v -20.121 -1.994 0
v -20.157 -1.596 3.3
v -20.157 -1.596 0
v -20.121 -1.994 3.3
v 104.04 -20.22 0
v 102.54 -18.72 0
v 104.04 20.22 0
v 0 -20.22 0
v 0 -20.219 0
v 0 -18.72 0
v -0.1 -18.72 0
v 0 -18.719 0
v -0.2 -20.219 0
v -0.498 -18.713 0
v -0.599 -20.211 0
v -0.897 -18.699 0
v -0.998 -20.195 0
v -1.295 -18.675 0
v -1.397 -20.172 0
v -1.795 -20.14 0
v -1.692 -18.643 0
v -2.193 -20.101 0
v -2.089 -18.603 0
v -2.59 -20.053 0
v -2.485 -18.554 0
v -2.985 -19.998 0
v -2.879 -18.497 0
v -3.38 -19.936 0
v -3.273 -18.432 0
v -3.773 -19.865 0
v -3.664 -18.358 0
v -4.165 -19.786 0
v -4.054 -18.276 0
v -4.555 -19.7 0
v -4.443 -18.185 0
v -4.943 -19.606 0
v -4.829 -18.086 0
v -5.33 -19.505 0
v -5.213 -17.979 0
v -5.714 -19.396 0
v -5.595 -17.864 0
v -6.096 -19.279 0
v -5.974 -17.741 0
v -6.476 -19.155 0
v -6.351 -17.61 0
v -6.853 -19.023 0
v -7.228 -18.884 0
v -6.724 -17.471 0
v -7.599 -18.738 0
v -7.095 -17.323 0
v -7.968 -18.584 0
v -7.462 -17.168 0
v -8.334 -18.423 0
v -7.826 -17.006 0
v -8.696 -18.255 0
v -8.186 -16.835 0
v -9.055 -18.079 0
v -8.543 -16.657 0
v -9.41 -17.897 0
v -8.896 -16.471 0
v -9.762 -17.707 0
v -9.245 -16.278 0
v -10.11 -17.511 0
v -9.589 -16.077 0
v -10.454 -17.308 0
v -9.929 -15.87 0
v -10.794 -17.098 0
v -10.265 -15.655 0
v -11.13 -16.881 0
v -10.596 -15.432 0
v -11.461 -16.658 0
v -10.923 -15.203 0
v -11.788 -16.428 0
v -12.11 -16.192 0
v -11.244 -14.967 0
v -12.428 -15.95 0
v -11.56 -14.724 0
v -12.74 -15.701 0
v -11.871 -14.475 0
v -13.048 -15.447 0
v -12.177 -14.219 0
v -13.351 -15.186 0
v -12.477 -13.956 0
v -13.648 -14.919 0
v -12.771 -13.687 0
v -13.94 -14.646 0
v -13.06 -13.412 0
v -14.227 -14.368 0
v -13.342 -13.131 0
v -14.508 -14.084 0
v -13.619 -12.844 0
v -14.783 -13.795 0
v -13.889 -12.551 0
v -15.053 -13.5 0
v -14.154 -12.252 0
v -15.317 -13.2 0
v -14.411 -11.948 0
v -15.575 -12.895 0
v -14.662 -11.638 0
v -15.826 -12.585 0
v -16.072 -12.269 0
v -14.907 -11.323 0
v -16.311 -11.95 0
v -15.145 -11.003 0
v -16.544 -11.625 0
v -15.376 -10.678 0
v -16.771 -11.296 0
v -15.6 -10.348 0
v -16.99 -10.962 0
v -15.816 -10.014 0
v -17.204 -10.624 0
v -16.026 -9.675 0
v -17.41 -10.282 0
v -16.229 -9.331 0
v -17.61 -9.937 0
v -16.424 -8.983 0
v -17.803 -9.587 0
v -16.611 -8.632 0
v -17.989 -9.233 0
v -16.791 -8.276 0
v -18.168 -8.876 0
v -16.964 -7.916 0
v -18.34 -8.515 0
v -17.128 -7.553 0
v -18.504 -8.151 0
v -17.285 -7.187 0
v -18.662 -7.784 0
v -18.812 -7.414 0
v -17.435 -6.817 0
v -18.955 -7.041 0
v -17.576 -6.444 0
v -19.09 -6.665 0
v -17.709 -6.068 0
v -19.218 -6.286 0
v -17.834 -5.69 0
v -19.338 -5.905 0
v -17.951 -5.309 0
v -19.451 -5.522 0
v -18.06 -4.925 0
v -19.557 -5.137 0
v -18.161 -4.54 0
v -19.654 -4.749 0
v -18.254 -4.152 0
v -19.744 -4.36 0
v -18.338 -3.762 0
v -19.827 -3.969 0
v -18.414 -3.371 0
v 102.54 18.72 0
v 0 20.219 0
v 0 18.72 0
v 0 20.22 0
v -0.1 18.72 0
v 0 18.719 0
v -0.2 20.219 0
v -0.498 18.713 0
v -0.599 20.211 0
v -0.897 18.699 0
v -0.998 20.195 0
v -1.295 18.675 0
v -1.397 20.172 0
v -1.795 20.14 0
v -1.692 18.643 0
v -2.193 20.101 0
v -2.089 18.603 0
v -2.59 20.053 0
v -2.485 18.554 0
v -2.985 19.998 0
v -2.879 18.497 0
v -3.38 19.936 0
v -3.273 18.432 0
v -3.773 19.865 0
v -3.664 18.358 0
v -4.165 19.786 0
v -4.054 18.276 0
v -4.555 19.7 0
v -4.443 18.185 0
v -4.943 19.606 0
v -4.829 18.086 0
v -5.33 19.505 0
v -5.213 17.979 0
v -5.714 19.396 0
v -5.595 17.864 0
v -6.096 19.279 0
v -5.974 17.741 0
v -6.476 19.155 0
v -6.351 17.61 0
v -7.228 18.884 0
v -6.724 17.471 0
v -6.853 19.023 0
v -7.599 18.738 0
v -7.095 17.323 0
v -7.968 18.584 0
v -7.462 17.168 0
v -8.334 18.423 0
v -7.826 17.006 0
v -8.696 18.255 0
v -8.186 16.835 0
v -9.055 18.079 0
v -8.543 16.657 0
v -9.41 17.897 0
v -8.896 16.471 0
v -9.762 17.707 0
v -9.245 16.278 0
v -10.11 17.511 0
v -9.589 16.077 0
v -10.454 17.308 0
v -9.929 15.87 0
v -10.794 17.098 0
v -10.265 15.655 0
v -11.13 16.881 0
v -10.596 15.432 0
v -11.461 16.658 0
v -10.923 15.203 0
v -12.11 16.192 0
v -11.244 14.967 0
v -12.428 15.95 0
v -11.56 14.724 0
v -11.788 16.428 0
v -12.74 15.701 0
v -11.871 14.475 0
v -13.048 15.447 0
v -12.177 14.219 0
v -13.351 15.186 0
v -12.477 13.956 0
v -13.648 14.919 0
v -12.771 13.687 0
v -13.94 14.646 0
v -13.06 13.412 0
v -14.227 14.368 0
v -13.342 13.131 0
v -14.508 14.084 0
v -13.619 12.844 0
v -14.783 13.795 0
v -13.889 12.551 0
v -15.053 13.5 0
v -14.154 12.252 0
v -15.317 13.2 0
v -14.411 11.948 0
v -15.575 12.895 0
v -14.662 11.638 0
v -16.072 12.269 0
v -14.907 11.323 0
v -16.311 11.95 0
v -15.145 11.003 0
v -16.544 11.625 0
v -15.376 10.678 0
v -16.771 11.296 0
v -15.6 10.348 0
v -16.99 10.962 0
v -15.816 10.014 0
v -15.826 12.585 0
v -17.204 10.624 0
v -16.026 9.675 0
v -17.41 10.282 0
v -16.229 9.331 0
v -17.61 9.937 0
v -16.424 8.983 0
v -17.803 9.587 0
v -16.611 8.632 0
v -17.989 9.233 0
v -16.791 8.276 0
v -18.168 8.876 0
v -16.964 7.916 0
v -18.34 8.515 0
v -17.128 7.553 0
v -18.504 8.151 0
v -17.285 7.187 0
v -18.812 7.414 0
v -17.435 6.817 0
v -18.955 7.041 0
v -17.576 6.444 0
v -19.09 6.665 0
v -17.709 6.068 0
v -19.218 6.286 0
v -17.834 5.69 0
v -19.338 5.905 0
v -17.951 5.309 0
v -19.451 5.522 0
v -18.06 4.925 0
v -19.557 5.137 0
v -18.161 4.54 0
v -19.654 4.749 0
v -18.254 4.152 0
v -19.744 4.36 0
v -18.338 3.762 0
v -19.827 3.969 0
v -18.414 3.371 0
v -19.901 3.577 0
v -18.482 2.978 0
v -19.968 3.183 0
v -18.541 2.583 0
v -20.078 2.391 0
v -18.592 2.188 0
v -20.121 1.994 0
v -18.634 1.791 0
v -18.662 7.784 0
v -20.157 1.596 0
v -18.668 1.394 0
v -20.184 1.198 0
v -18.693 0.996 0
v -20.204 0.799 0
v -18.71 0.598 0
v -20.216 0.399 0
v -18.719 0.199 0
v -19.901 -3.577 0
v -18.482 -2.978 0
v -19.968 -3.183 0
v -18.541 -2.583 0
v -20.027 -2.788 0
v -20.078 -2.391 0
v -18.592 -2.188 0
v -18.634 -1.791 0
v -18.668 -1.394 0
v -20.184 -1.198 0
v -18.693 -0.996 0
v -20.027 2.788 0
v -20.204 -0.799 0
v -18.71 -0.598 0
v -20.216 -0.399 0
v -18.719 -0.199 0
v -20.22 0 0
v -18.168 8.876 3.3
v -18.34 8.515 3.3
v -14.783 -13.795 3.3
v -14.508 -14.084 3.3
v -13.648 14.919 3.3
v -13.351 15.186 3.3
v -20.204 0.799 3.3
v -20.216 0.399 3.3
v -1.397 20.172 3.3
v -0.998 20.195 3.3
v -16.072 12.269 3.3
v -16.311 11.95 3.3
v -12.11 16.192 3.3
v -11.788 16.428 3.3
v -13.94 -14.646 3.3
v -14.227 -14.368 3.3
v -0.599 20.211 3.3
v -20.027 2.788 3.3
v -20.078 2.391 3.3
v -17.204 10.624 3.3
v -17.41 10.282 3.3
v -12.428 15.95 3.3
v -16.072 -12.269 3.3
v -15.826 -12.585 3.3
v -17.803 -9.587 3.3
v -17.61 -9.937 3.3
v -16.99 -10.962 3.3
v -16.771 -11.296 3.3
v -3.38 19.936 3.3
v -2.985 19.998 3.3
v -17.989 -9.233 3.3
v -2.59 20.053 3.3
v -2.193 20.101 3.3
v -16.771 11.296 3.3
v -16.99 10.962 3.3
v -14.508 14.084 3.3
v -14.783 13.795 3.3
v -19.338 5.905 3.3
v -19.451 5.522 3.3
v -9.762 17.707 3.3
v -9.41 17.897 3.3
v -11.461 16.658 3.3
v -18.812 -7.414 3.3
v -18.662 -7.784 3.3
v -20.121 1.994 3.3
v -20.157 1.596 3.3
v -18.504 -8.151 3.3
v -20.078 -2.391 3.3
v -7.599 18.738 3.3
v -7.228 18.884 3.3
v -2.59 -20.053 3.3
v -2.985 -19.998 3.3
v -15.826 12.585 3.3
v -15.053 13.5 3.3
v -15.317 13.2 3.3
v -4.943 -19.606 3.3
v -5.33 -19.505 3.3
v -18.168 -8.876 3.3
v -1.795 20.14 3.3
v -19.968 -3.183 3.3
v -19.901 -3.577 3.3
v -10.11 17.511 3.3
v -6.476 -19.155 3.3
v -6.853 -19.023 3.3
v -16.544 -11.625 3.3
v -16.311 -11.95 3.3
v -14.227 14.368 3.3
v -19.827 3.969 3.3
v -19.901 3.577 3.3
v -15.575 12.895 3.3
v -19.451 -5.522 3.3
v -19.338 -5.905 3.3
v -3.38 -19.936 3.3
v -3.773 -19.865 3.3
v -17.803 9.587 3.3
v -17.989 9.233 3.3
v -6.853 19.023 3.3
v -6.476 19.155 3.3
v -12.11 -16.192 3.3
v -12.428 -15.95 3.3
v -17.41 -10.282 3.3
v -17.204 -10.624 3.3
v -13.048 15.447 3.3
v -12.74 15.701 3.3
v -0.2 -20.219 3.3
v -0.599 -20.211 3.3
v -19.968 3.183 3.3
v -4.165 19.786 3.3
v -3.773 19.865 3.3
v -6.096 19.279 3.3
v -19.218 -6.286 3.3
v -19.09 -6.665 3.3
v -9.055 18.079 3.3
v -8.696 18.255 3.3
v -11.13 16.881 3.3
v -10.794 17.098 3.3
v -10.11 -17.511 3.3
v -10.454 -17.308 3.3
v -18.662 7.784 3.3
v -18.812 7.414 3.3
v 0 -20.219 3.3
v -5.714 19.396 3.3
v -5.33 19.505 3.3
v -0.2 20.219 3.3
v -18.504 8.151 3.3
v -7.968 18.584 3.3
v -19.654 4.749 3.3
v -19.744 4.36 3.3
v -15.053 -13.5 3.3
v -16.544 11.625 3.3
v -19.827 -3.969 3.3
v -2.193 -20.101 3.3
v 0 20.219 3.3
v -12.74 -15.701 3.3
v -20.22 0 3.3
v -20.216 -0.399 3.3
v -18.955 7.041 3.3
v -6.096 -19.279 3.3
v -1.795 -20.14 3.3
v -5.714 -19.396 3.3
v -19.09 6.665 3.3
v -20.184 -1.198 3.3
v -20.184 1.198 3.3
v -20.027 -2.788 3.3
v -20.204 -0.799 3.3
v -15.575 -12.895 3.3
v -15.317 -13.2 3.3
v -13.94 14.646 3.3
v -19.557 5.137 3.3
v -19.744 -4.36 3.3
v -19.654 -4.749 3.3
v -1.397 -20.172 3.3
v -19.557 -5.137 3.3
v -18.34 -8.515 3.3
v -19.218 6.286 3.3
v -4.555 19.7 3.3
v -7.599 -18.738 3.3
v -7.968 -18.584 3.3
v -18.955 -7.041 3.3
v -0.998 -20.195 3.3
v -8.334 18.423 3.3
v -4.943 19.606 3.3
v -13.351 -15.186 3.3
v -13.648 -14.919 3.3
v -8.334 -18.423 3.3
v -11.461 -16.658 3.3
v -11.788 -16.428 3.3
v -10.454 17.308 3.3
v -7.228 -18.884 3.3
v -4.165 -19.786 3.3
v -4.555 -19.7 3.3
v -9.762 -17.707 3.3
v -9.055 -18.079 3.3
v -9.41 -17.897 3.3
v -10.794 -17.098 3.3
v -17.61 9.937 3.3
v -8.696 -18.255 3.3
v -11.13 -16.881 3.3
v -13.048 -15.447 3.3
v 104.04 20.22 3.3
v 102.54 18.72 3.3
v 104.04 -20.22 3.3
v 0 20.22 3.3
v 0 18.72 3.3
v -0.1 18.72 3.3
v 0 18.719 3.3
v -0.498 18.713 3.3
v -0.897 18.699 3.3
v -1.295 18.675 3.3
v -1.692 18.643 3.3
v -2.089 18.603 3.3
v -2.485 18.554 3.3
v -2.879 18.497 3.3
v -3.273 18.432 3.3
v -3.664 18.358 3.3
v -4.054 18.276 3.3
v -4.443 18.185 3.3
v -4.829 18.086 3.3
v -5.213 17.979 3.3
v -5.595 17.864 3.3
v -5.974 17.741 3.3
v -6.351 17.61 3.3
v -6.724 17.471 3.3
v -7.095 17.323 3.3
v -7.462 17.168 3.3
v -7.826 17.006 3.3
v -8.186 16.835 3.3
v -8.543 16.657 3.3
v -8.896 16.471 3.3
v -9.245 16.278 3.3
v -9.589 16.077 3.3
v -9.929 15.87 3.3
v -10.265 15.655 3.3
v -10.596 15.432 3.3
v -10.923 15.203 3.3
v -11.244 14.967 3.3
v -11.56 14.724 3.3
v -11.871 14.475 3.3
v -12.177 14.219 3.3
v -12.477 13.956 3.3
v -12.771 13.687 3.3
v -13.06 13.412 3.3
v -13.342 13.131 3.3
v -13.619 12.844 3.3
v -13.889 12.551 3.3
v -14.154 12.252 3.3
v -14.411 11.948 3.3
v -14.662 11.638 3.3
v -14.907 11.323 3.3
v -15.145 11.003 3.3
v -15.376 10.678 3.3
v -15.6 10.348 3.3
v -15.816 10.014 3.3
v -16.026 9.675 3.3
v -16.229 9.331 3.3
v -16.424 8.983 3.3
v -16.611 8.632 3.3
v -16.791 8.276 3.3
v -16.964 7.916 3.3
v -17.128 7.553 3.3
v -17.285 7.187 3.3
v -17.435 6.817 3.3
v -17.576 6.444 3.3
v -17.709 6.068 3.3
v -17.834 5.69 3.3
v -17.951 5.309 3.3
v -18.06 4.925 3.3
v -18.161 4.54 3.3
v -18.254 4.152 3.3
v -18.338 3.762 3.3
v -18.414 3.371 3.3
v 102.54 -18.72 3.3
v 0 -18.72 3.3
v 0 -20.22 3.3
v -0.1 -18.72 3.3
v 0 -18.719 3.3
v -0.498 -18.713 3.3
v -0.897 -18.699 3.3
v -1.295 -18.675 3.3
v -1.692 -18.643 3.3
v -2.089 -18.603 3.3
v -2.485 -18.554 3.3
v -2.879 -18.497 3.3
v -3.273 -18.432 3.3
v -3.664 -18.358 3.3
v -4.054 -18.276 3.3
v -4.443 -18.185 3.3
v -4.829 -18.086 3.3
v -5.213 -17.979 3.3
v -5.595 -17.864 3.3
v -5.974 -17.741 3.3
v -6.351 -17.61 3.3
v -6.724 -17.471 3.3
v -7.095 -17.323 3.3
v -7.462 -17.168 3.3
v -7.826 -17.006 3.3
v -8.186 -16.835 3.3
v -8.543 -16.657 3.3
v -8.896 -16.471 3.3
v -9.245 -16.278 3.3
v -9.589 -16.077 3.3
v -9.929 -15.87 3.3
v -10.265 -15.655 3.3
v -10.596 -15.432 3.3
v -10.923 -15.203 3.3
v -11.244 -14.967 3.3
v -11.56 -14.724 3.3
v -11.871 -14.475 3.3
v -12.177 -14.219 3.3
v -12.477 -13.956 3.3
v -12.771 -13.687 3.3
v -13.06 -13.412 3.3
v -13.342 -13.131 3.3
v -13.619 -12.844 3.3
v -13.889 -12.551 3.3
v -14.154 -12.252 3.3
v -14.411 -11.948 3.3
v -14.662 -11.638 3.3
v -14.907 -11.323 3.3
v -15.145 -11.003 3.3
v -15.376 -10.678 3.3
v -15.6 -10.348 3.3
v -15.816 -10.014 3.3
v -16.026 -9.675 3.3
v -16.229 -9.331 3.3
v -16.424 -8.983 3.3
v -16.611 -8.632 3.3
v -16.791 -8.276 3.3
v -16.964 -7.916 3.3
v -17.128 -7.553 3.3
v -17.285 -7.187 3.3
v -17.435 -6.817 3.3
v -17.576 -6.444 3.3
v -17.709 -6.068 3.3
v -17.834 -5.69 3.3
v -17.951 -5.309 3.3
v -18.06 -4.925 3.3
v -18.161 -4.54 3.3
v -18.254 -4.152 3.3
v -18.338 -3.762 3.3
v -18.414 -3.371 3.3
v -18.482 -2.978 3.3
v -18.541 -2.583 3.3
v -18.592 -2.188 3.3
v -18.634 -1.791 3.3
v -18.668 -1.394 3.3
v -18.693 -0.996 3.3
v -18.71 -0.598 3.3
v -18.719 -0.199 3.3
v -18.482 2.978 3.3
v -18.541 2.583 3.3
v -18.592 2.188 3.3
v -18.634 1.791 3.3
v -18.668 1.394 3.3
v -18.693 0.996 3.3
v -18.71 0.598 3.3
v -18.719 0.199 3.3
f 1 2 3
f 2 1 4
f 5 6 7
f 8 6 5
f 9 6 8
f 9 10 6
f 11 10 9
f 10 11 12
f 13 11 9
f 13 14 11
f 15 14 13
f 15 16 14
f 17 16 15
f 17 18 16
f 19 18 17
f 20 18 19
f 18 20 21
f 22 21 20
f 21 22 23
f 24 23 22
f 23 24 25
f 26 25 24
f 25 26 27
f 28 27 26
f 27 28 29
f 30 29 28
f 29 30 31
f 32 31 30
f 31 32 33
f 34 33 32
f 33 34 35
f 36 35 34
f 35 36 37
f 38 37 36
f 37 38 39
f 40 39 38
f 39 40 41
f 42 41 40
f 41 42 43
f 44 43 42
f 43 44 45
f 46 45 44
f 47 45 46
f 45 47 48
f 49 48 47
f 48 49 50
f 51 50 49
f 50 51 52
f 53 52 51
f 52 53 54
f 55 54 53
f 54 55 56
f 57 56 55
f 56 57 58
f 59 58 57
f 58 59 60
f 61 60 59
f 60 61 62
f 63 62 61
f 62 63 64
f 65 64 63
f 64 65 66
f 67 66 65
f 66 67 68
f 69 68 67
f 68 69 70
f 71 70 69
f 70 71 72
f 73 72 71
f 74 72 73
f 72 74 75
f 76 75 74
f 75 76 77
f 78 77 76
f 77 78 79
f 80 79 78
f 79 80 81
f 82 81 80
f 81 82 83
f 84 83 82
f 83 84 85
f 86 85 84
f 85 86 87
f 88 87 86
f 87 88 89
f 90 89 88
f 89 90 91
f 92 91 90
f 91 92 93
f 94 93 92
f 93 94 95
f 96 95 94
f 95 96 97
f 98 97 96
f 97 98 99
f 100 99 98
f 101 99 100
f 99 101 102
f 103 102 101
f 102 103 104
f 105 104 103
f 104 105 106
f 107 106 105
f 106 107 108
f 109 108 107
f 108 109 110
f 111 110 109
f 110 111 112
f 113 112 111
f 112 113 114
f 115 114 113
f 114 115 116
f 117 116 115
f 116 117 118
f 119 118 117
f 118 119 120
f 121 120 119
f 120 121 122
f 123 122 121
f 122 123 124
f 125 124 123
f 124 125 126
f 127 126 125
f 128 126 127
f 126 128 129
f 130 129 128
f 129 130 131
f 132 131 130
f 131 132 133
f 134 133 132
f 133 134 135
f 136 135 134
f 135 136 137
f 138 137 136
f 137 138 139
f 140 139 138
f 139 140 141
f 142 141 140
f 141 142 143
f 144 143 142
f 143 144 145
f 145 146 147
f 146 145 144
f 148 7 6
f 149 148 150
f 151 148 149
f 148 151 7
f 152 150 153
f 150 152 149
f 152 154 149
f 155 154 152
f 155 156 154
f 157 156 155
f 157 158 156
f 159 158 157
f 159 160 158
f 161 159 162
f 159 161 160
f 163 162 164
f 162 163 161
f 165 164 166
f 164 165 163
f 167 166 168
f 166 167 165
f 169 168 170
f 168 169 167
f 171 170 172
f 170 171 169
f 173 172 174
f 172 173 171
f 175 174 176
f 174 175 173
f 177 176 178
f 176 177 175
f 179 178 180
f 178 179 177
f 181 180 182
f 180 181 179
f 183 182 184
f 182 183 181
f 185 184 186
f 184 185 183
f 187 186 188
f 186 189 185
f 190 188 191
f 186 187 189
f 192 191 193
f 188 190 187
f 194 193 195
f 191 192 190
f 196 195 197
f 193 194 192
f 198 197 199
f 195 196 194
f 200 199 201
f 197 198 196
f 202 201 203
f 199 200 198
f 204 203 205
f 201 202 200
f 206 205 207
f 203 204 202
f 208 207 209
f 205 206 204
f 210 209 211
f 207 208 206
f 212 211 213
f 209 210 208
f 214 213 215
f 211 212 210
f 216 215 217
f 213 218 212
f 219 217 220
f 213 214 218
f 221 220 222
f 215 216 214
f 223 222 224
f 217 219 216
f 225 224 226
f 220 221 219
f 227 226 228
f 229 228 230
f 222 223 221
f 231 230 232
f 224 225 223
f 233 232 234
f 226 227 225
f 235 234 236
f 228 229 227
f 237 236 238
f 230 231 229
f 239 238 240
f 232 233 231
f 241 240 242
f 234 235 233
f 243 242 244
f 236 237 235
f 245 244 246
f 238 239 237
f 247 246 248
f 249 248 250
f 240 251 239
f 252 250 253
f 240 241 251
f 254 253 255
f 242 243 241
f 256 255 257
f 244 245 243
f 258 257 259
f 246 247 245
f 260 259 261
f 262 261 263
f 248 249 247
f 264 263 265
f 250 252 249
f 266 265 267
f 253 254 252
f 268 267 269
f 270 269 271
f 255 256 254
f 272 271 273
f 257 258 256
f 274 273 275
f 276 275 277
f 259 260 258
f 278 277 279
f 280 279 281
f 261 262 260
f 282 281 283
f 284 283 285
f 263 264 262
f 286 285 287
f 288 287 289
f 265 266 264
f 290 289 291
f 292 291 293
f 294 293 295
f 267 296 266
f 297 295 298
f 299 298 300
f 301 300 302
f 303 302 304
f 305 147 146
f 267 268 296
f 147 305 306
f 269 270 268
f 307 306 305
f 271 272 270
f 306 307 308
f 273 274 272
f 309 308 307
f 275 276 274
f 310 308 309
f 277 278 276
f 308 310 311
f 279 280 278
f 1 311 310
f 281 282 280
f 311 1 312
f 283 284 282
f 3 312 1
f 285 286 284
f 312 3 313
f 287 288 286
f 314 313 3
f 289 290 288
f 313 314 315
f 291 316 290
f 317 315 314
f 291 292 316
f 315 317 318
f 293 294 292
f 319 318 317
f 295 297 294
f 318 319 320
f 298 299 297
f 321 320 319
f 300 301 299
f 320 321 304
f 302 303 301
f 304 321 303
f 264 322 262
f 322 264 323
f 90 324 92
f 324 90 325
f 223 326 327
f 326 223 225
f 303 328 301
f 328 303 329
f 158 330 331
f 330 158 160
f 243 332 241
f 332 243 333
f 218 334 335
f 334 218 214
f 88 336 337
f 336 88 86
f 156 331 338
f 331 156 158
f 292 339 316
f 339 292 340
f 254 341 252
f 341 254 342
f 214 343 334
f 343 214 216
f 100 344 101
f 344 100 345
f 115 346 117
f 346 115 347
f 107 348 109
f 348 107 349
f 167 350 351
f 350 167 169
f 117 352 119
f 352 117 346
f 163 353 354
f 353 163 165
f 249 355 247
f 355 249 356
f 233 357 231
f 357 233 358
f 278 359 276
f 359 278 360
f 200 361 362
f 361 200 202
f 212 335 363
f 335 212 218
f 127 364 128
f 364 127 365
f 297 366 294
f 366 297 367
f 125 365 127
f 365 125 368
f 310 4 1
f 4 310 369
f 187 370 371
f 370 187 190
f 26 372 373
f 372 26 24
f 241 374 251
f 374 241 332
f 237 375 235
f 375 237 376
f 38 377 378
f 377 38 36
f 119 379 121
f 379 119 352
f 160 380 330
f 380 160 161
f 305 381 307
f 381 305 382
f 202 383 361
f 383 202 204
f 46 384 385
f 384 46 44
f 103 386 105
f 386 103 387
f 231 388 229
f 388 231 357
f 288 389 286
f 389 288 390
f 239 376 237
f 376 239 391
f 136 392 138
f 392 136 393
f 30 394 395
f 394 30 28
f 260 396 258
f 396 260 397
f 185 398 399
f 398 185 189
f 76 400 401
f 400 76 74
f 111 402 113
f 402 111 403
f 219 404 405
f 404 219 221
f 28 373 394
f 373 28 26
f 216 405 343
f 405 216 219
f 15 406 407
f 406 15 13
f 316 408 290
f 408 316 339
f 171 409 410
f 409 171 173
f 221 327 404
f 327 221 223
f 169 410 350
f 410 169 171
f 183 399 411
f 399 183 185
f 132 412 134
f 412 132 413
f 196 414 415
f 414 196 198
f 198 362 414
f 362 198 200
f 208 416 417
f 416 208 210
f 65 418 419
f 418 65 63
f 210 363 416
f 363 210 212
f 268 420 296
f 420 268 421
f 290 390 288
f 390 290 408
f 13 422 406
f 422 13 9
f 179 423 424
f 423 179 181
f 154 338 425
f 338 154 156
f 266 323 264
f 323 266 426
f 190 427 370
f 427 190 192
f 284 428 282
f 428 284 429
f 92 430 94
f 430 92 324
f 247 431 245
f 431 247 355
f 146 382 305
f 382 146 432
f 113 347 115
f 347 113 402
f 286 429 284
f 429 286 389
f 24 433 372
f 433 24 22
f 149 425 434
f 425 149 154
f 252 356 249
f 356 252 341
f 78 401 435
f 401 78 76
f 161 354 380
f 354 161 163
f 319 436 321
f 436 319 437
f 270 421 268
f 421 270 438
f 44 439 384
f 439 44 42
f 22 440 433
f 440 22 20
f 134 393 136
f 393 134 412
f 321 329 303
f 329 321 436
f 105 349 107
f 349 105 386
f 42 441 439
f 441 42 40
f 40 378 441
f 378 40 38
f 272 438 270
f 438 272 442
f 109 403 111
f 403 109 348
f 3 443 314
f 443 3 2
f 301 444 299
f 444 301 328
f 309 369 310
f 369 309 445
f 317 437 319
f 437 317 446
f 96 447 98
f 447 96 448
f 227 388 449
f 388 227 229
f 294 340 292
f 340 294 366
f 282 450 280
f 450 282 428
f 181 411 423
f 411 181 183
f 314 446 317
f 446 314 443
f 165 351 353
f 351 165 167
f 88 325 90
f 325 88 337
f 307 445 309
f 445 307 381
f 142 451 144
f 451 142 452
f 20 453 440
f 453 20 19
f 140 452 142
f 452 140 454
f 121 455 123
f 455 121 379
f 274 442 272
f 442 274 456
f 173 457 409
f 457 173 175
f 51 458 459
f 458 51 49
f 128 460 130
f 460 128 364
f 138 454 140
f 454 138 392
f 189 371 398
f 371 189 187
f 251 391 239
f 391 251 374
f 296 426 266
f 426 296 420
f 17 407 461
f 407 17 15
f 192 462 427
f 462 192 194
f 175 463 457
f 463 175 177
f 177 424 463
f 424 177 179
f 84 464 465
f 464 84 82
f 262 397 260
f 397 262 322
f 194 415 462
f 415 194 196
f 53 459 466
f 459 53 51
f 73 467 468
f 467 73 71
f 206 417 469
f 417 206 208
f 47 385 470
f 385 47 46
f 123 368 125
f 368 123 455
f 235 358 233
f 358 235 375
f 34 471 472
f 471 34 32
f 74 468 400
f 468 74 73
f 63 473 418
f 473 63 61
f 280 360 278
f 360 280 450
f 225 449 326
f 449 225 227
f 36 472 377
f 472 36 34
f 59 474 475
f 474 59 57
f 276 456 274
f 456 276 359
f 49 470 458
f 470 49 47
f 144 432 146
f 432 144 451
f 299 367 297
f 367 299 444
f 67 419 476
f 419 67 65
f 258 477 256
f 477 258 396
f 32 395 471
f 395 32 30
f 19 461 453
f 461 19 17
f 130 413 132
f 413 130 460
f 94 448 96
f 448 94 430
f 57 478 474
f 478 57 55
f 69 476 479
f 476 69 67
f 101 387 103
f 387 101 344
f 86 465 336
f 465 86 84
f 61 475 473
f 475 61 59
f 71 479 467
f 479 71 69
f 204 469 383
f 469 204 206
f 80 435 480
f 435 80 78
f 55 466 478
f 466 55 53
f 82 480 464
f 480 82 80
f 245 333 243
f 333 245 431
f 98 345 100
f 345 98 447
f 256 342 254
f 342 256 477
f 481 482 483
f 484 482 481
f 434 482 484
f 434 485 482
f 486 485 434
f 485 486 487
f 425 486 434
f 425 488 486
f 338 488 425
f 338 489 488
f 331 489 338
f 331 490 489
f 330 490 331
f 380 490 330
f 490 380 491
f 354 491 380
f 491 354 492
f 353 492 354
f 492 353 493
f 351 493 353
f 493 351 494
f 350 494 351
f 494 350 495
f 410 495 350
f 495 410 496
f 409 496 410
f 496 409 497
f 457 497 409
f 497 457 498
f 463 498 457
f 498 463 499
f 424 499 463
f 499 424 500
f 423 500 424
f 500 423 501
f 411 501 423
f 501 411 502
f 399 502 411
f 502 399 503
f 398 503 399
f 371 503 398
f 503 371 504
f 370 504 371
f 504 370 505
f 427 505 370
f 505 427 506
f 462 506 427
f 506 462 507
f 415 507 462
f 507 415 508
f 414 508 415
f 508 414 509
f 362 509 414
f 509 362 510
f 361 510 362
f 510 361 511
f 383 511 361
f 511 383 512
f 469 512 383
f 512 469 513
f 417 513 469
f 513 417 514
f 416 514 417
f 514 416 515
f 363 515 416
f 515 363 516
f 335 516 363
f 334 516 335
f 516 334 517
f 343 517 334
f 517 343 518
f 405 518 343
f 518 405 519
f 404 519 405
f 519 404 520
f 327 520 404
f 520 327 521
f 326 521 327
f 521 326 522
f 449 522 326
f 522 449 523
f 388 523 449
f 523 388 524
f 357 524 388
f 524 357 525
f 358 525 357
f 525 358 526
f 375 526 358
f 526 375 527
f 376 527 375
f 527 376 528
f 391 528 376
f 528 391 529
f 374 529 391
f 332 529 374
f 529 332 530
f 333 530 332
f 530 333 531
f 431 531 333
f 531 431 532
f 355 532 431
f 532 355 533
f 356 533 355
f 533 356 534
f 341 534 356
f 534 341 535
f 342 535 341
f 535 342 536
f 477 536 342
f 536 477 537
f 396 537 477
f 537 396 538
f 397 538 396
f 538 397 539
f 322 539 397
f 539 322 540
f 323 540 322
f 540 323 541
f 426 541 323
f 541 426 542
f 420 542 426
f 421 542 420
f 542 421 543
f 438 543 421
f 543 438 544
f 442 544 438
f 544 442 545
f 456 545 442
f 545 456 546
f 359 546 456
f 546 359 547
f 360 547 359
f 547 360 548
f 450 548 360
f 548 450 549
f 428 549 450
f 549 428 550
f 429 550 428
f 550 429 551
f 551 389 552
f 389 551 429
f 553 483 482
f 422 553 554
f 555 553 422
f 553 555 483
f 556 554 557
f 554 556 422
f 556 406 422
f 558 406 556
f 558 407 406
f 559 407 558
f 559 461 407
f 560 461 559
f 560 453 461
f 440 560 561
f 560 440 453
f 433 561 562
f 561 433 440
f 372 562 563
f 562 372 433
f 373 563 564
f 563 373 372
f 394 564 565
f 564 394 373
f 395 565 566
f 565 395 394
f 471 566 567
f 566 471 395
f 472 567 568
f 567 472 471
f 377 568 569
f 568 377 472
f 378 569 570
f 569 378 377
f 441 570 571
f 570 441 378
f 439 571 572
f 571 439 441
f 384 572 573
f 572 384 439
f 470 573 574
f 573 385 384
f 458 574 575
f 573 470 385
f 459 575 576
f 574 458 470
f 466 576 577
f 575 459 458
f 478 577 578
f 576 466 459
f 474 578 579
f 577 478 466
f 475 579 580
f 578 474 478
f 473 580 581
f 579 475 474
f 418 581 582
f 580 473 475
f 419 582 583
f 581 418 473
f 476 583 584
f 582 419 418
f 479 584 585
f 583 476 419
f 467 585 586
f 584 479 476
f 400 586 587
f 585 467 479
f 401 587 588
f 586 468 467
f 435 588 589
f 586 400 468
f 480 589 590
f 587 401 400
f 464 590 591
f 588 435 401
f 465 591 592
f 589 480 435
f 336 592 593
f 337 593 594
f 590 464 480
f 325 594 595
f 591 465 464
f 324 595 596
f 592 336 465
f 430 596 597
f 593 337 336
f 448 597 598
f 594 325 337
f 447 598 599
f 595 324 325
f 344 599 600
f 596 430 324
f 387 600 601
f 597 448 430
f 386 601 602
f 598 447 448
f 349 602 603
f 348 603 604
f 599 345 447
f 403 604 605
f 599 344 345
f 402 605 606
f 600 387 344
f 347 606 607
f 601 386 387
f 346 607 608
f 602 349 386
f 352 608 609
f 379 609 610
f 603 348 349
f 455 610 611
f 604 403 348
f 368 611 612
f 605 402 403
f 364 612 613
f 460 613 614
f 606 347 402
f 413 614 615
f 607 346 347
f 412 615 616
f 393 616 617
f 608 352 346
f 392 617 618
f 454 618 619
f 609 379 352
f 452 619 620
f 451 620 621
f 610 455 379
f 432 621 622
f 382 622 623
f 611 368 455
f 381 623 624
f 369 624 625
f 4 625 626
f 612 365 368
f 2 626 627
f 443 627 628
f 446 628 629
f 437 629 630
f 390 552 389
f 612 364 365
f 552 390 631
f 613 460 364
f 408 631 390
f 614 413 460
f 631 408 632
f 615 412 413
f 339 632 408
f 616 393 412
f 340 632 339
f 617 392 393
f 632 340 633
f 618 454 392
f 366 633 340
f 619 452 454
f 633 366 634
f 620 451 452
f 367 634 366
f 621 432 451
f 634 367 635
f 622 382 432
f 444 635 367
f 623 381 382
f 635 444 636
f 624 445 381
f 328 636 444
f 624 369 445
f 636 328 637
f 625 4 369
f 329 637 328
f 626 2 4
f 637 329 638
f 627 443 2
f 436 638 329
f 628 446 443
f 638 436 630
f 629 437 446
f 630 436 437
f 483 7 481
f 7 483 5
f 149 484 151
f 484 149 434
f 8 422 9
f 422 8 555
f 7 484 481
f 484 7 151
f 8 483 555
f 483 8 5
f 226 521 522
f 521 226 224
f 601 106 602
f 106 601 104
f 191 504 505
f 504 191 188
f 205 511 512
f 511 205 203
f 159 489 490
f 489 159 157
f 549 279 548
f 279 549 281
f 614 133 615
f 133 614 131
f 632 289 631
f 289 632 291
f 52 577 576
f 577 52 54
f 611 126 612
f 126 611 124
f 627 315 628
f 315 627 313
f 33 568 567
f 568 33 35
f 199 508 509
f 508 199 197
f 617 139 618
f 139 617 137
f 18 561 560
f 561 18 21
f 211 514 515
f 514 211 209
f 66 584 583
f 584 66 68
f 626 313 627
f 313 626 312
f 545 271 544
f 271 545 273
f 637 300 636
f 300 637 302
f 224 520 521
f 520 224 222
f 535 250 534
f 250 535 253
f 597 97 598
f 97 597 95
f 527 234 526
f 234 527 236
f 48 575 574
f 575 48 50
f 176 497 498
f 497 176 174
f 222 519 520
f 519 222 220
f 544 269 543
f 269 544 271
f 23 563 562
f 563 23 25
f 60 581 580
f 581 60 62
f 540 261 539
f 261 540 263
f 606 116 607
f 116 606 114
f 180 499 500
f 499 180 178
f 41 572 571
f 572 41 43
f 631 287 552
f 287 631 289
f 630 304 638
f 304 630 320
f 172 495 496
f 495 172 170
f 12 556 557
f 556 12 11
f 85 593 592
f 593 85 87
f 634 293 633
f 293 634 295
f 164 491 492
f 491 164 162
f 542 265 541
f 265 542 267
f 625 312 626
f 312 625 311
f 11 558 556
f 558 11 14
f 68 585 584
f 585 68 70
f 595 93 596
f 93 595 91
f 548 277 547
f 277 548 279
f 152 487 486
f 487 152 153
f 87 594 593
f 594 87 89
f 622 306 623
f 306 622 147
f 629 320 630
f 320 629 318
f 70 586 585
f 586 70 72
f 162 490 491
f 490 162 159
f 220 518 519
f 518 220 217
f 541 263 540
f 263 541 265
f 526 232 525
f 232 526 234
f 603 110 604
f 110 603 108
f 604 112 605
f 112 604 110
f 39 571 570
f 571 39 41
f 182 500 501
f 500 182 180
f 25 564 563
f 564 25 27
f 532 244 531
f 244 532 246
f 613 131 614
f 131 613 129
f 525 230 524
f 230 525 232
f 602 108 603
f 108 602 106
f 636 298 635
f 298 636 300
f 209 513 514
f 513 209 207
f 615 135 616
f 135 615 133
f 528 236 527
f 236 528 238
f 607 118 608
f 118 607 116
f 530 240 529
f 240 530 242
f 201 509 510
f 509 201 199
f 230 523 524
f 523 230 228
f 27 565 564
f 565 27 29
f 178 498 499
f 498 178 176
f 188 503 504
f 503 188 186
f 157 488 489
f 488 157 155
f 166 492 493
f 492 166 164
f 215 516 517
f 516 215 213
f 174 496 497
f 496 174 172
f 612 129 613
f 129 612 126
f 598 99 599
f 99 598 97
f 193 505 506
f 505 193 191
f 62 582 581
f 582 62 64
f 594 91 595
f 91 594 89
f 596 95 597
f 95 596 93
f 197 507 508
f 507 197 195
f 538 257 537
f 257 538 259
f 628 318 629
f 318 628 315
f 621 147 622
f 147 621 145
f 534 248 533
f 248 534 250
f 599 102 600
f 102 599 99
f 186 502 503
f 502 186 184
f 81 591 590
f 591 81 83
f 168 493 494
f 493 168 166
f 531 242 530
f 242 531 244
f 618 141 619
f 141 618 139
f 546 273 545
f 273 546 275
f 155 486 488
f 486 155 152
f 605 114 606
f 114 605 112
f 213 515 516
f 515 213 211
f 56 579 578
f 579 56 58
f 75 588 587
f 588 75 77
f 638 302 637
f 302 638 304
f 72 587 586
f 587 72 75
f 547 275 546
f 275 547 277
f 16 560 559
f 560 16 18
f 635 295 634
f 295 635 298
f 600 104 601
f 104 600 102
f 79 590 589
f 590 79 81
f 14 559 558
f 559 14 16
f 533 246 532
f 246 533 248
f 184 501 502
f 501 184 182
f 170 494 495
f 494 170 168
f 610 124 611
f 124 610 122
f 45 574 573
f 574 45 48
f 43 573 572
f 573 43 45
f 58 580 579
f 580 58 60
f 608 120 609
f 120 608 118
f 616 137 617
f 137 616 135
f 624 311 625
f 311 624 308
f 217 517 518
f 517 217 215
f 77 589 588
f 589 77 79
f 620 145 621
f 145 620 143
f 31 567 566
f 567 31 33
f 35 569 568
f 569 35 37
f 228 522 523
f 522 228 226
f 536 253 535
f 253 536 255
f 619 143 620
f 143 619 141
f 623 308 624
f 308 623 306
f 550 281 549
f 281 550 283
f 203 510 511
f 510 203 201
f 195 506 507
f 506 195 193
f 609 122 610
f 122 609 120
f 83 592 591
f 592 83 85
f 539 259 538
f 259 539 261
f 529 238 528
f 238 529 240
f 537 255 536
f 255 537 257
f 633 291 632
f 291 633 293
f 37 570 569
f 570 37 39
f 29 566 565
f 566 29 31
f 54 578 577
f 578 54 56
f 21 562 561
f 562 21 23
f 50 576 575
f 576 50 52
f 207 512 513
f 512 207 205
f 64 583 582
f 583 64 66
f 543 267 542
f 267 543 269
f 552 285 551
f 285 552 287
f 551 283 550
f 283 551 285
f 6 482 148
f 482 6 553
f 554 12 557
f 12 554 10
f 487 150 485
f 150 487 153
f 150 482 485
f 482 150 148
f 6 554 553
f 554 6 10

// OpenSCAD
$fa = 1;
$fs = 0.4;

function mm(mil) = mil * 0.0254;
board_r = mm(800);
board_l = mm(4100);
board_thickness = 1.6;
print_err = 0.1;
fit_err = 0.1;
plate_raise = 5;
large_num = 200;

frame_height = plate_raise - board_thickness - print_err;
frame_thick = 1.5;
frame_r = board_r - print_err;
frame_l = board_l - print_err;

module frame_outter() {
    cylinder(
        h = frame_height, 
        r = frame_r
    );
    translate([0, -frame_r, 0])
        cube([frame_l, frame_r*2, frame_height]);
}

module frame_inner() {
    translate([0, 0, - 0.5 * large_num])
        cylinder(
            h = large_num, 
            r = frame_r - frame_thick
        );
    translate([0, -(frame_r - frame_thick), - 0.5 * large_num])
        cube([frame_l - frame_thick, (frame_r - frame_thick)*2, large_num]);
}

// main
difference () {
    frame_outter();
    frame_inner();
}
